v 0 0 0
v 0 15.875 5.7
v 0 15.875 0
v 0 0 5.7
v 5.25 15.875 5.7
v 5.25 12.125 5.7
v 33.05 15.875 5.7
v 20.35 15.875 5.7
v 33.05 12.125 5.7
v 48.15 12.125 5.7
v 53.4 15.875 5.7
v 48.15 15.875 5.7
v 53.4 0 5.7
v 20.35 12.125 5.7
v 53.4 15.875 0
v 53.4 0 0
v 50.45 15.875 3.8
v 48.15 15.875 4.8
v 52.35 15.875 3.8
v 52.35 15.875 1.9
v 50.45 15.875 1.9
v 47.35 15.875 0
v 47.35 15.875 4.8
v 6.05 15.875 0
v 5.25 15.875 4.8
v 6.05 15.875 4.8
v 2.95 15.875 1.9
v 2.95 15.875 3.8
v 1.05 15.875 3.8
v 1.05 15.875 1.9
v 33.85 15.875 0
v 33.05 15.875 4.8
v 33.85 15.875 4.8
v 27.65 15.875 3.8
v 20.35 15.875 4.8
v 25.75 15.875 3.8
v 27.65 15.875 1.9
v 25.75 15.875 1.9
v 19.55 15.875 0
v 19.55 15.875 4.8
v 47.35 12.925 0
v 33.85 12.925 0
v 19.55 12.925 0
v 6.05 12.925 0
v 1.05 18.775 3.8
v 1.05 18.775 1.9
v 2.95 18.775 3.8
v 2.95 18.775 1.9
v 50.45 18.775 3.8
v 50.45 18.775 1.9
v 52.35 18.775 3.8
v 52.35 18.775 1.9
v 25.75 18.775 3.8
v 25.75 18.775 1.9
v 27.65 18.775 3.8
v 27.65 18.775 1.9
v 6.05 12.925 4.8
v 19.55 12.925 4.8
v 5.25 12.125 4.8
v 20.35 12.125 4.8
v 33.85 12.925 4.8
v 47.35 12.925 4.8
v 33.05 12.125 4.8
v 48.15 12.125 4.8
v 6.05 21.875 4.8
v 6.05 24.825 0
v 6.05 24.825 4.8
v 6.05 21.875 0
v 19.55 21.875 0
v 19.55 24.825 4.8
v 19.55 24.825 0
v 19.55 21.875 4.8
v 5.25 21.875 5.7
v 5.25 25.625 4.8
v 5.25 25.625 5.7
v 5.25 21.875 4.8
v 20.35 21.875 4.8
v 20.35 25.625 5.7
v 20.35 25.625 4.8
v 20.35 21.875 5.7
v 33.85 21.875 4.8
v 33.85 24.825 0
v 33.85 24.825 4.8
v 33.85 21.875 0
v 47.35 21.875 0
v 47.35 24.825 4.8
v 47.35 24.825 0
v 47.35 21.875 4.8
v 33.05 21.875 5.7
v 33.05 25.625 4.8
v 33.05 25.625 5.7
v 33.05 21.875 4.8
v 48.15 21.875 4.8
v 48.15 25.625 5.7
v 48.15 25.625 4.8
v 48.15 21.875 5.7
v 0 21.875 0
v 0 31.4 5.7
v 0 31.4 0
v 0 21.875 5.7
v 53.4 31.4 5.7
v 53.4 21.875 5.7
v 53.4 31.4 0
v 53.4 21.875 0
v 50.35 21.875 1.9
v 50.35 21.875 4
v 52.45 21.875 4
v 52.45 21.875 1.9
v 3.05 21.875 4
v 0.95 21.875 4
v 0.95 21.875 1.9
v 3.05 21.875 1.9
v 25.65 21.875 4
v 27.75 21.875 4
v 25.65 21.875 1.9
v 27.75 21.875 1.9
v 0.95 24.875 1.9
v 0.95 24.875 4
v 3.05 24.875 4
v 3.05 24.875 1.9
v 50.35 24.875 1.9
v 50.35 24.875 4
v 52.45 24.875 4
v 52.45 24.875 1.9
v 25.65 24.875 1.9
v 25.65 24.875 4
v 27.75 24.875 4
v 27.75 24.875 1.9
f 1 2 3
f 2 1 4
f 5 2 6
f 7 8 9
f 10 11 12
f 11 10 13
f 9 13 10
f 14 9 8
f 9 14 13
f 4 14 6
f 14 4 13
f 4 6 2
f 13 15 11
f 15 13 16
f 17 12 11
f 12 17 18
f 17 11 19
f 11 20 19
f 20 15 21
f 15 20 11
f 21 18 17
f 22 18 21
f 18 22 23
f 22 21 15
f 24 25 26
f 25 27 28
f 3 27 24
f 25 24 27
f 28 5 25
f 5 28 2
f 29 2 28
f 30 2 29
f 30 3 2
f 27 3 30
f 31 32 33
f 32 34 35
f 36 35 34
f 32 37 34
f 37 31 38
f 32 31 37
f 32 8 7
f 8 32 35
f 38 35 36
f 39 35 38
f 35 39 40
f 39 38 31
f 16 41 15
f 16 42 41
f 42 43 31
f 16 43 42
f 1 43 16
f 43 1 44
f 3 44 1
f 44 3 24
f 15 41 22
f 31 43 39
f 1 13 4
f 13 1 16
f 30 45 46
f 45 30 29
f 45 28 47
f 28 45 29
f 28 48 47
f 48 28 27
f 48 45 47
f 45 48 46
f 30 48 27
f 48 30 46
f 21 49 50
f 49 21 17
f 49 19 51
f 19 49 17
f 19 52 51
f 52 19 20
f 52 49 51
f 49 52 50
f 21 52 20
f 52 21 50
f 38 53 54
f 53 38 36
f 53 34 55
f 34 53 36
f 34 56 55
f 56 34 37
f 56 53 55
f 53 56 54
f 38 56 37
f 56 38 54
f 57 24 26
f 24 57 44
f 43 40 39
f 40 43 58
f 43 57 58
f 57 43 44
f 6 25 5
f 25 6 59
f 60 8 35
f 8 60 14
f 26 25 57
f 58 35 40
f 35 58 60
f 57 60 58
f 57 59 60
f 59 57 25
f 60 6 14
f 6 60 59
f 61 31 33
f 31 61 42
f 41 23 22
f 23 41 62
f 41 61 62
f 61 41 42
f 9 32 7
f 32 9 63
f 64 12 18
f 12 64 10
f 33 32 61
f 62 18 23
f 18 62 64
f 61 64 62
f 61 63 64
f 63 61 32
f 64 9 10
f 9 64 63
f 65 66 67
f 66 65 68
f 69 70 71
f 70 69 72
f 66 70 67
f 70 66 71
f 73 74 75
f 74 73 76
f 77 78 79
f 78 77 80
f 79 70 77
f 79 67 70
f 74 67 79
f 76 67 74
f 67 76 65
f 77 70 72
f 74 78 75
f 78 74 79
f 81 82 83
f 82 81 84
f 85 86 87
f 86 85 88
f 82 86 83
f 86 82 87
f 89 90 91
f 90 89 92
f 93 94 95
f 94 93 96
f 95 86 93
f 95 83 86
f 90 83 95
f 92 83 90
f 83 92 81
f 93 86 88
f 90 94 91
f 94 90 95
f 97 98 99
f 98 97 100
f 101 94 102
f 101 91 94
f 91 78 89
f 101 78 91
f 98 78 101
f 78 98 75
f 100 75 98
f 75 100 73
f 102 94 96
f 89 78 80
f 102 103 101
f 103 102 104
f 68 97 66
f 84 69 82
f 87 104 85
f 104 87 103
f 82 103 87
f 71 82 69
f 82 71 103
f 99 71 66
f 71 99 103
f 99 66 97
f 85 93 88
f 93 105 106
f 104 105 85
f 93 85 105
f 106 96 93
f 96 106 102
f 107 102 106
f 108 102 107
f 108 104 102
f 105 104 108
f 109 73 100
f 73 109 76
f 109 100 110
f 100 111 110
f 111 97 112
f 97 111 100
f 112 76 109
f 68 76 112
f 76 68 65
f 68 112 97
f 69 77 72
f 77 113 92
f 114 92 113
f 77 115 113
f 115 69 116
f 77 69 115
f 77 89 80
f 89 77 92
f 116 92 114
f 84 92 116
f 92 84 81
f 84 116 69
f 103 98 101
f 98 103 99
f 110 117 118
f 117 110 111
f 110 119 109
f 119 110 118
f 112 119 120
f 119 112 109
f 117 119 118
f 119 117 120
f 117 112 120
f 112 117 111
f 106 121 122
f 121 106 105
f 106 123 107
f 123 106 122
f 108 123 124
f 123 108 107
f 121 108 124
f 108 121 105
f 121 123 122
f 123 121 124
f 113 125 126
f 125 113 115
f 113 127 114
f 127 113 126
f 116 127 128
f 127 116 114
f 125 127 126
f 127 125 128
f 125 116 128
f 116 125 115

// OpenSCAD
// file: gamecube-measurements.scad
gcWidth = 150 / 2;
gcHeight = 156 / 2;
gcDepth = 110 / 2;

gcCaseR = 2.4 / 2;

gcBaseDepth = 25 / 2;
gcBaseThickness = 1.5;
gcWallThickness = 3;

gcMountingPlateSlotThickness = 1;
gcMountingPlateSlotWidth = 2;
gcMountingPegDiameter = 1.8;
gcMountingPegHeight = 2;

gcFanNubThickness = 4.5 / 2;
gcFanNubArcHeight = 4.5 / 2;
gcFanNubArcRadius = 120 / 2;
gcFanGridWidth = 54 / 2;
gcFanPlateWidth = gcFanGridWidth + 6;
gcFanBeamWidth = 1.5;

gcFrontPlateArcDepth = 5.3 / 2;
gcFrontPlateArcRadius = 120 / 2;
gcFrontPlateWidth = 115 / 2;
gcFrontPlateHeight = 59 / 2;

gcFrontPlateHoleDiameter = 14.8;
gcFrontPlateHoleSpacing = 13;
gcFrontPlateHoleInsetY = 12.2;

gcFrontPlateInsetWidth = gcFrontPlateWidth - 2*gcMountingPlateSlotWidth;
gcFrontPlateInsetHeight = gcFrontPlateHeight - 2*gcMountingPlateSlotWidth;

gcMemorySlotWidth = 36;
gcMemorySlotHeight = 8.45;
gcMemorySlotDepth = 0.9;
gcMemorySlotR = 2.4;
gcMemoryInsetY = 9.2 / 2;

gcRearPlateWidth = gcWidth - 6;
gcRearPlateHeight = 94.5 / 2;
gcRearPlateInsetY = 5.6 / 2;
gcRearPlateStickout = 5 / 2;

gcHandleWidth = 10 / 2;
gcHandleHeight = 25 / 2;
gcHandleRadius = 68 / 2;
gcHandleDistance = 100 / 2;
gcHandleStickout = 35 / 2;
gcHandleInsetX = 21 / 2;// - gcHandleWidth/2;
gcHandleInsetY = 68 / 2;

gcButtonDiameter = 15.5 / 2;

gcPowerButtonX = 17 / 2;
gcPowerButtonY = gcHeight - 37 / 2;
gcResetButtonX = gcPowerButtonX;
gcResetButtonY = gcHeight - 131 / 2;
gcOpenButtonX = gcWidth - gcResetButtonX;
gcOpenButtonY = gcResetButtonY;

gcBracketThickness = 3;

gcInlayDiameter = 78 / 2;
// main file
include <gamecube-measurements.scad>

wr = 0.1;
hwr = wr/2;

usbPortThickness = 5.9;
usbPortWidth = 13.5;
usbLip = 0.8;

bracketDepth = 5.7;

frontPlateInsetWidth = gcFrontPlateInsetWidth - wr;
frontPlateInsetHeight = gcFrontPlateInsetHeight - wr;

channelWidth = 4;
channelDepth = bracketDepth - 2;

usbSlotY = frontPlateInsetHeight/8*5;

pegWidth = 2;
pegDepth = 3;

module usbPort() {
    translate([-usbPortWidth/2 - usbLip, -usbPortThickness/2 - usbLip, 0]) union() {
        translate([usbLip, usbLip, -0.1])
            cube([usbPortWidth, usbPortThickness, bracketDepth + 0.2]);
        translate([0, 0, bracketDepth - usbLip])
            cube([usbPortWidth + 2*usbLip, usbPortThickness + 2*usbLip, usbLip * 2]);
    }
}

module usbBracketBottom() {
    difference() {
        union() {
            cube([frontPlateInsetWidth, usbSlotY, bracketDepth]);
            translate([(channelWidth-pegWidth)/2+hwr, usbSlotY, (bracketDepth-pegWidth)/2+hwr])
                cube([pegWidth-wr, pegDepth-wr, pegWidth-wr]);
            translate([frontPlateInsetWidth-(channelWidth-pegWidth)/2-pegWidth+hwr, usbSlotY, (bracketDepth-pegWidth)/2+hwr])
                cube([pegWidth-wr, pegDepth-wr, pegWidth-wr]);
            translate([frontPlateInsetWidth/2-(channelWidth-pegWidth)/2+hwr, usbSlotY, (bracketDepth-pegWidth)/2+hwr])
                cube([pegWidth-wr, pegDepth-wr, pegWidth-wr]);
        }
        translate([frontPlateInsetWidth/2 - (gcFrontPlateHoleSpacing + gcFrontPlateHoleDiameter)/2, usbSlotY, -0.1])
            usbPort();
        translate([frontPlateInsetWidth/2 + (gcFrontPlateHoleSpacing + gcFrontPlateHoleDiameter)/2, usbSlotY, -0.1])
            usbPort();
    }
}

module usbBracketTop() {
    difference() {
        cube([frontPlateInsetWidth, frontPlateInsetHeight - usbSlotY, bracketDepth]);
        translate([(channelWidth-pegWidth)/2-hwr, -0.1, (bracketDepth-pegWidth)/2+hwr])
            cube([pegWidth+wr, pegDepth+wr, pegWidth+wr]);
        translate([frontPlateInsetWidth-(channelWidth-pegWidth)/2-pegWidth-hwr, -0.1, (bracketDepth-pegWidth)/2+hwr])
            cube([pegWidth+wr, pegDepth+wr, pegWidth+wr]);
        translate([frontPlateInsetWidth/2-(channelWidth-pegWidth)/2-hwr, -0.1, (bracketDepth-pegWidth)/2+hwr])
            cube([pegWidth+wr, pegDepth+wr, pegWidth+wr]);
        translate([frontPlateInsetWidth/2 - (gcFrontPlateHoleSpacing + gcFrontPlateHoleDiameter)/2, 0, -0.1])
            usbPort();
        translate([frontPlateInsetWidth/2 + (gcFrontPlateHoleSpacing + gcFrontPlateHoleDiameter)/2, 0, -0.1])
            usbPort();
    }
}

module usbBracket() {
    translate([0, 0, -bracketDepth]) {
        usbBracketBottom();
        translate([0, usbSlotY, 0])
            usbBracketTop();
    }
}


usbBracketBottom();
translate([0, usbSlotY + 2*pegDepth, 0])
    usbBracketTop();
